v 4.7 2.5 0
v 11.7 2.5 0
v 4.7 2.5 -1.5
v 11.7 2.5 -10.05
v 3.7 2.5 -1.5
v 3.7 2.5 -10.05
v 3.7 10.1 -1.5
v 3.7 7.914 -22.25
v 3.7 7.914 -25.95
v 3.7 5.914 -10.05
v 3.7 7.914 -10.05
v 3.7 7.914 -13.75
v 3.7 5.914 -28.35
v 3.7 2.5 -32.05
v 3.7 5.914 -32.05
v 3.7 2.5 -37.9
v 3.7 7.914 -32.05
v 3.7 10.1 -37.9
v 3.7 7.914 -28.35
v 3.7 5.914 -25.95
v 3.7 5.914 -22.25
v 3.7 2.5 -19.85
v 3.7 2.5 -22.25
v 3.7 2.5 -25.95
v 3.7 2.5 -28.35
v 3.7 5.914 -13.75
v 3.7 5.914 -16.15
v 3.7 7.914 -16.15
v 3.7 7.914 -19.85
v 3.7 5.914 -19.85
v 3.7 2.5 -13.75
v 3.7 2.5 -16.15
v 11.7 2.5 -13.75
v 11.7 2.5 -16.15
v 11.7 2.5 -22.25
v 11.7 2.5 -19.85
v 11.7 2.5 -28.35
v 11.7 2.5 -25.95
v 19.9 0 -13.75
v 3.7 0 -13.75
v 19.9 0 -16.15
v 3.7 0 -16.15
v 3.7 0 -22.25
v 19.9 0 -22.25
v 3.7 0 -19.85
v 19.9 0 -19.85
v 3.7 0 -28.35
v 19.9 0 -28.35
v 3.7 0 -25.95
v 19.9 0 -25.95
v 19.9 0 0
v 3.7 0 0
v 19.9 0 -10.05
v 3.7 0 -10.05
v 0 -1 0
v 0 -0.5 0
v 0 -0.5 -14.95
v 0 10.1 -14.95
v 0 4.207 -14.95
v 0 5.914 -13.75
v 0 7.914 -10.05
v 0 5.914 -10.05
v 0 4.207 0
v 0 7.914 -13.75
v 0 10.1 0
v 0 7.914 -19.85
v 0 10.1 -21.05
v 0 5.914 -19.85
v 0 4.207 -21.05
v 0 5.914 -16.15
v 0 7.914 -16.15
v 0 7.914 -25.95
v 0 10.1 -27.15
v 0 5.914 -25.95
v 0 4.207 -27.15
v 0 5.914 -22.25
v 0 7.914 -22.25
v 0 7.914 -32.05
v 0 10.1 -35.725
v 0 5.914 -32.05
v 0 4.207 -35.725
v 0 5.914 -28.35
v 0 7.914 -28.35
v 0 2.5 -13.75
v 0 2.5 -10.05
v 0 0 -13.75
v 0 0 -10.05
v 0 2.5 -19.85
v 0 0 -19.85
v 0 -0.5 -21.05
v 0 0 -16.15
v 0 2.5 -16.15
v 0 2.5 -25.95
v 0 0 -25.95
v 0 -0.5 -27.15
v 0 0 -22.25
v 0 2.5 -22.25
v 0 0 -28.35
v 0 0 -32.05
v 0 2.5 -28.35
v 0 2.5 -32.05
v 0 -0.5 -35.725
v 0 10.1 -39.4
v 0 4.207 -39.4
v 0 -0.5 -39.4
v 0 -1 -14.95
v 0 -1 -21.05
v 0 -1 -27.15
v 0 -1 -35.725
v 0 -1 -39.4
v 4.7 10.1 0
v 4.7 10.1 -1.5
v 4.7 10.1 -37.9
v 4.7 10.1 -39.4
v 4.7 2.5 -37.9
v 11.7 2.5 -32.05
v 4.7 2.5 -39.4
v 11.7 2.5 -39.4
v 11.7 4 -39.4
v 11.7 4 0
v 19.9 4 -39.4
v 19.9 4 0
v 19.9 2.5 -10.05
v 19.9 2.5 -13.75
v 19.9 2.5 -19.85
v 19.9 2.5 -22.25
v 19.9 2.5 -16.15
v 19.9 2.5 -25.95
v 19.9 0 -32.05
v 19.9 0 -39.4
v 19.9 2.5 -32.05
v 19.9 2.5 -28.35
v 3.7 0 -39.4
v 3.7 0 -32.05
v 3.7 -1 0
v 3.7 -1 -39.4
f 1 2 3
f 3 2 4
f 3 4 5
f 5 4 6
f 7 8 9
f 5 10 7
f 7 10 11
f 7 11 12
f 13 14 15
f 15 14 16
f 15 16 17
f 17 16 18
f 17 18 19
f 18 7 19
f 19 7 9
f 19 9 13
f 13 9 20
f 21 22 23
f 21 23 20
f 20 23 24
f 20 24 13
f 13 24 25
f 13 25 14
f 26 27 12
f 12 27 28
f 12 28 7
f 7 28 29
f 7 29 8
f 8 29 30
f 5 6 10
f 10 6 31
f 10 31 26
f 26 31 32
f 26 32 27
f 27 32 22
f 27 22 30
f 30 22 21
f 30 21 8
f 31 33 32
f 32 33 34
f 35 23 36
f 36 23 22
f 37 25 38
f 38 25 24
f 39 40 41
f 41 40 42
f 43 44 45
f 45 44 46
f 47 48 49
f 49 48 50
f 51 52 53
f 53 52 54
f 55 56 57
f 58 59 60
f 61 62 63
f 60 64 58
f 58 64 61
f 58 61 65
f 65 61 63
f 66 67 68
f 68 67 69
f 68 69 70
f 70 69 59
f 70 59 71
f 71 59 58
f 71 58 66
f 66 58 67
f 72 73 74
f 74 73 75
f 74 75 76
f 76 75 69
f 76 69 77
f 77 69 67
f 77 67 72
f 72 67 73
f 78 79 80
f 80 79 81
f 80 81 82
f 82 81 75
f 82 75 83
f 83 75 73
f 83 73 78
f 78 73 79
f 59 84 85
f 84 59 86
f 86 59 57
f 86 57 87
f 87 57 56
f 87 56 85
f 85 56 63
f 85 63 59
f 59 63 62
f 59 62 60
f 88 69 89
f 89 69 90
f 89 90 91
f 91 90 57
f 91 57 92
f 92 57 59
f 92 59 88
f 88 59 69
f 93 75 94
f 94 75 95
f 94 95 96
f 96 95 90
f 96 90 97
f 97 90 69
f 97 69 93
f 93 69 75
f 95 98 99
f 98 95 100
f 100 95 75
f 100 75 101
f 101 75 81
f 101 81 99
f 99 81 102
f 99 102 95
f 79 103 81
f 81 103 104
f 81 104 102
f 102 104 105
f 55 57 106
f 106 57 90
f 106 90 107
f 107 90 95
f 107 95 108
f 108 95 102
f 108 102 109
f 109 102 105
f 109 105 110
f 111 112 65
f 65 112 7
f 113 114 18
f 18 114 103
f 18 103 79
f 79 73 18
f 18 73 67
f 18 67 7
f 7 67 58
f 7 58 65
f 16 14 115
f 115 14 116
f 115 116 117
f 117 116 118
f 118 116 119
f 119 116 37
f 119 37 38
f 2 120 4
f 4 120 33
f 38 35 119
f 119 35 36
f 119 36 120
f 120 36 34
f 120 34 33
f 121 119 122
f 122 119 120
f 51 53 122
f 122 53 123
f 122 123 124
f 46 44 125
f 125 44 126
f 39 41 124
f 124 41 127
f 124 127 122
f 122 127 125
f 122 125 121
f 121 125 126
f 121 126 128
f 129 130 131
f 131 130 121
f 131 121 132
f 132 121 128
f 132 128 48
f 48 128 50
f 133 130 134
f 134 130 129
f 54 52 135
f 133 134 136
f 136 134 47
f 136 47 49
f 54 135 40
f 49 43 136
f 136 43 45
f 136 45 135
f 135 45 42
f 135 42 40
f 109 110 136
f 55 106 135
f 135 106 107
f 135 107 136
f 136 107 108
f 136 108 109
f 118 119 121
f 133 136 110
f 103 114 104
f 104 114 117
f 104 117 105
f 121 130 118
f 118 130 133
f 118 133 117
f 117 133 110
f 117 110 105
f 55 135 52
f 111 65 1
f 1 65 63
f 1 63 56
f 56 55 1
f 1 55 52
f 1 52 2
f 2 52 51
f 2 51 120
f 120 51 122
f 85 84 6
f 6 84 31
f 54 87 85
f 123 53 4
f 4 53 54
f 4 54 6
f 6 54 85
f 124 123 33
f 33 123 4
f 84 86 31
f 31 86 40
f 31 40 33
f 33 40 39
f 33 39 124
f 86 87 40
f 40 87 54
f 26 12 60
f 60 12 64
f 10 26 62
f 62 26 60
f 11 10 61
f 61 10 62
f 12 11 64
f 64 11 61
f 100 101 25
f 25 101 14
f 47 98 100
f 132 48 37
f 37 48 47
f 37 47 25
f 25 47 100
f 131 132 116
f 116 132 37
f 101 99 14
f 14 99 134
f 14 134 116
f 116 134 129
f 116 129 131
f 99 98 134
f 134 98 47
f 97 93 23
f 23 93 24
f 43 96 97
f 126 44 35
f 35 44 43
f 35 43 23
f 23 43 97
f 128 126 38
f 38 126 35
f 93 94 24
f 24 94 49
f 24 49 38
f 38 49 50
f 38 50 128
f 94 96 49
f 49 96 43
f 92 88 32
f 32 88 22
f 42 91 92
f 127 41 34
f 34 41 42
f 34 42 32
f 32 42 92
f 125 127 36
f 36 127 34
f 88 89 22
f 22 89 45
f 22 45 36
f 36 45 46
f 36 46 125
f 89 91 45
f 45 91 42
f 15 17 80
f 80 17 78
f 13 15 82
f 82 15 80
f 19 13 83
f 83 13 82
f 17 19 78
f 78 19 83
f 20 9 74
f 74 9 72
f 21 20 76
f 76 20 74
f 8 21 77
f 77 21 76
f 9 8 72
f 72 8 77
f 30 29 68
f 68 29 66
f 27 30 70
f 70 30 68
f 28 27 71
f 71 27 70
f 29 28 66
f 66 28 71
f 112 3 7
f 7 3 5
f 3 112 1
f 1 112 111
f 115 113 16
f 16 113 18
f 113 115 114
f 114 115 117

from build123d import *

# Parameters (mm, degrees)
RESSALTO_EXTRUS_O1_DEPTH = 39.4
ESBO_O2_W                = 3.7
ESBO_O2_H                = 2.5
CORTE_EXTRUS_O1_DEPTH    = 46.281121894
ESBO_O3_W                = 3.7
ESBO_O3_H                = 2
CORTE_EXTRUS_O2_DEPTH    = 10
PADR_O_LINEAR1_COUNT     = 4
PADR_O_LINEAR1_PITCH     = 6.1
ESBO_O5_W                = 1.5
ESBO_O5_H                = 7.6
RESSALTO_EXTRUS_O2_DEPTH = 1


with BuildPart() as part:
    # Esboço1 → Ressalto-extrusão1 (new body)
    with BuildSketch(Plane.XY):
        Polygon((0, 0), (0, 10.1), (3.7, 10.1), (3.7, 2.5), (11.7, 2.5), (11.7, 4), (19.9, 4), (19.9, 0), (3.7, 0), (3.7, -1), (0, -1), align=None)
    extrude(amount=-RESSALTO_EXTRUS_O1_DEPTH)

    # Esboço2 → Corte-extrusão1 (cut, through all)
    with BuildSketch(Plane(origin=(19.9, 0, 0), x_dir=(0, 0, -1), z_dir=(1, 0, 0))):
        with Locations((11.9, 1.25)):
            Rectangle(ESBO_O2_W, ESBO_O2_H)
    corte_extrus_o1 = extrude(amount=-CORTE_EXTRUS_O1_DEPTH, mode=Mode.SUBTRACT)

    # Esboço3 → Corte-extrusão2 (cut)
    with BuildSketch(Plane(origin=(3.7, 0, 0), x_dir=(0, 0, -1), z_dir=(1, 0, 0))):
        with Locations((11.9, 6.914453418)):
            Rectangle(ESBO_O3_W, ESBO_O3_H)
    corte_extrus_o2 = extrude(amount=-CORTE_EXTRUS_O2_DEPTH, mode=Mode.SUBTRACT)

    # Padrão linear1: Corte-extrusão1, Corte-extrusão2 ×4
    with Locations(*[(0, 0, -i * PADR_O_LINEAR1_PITCH) for i in range(1, PADR_O_LINEAR1_COUNT)]):
        add(corte_extrus_o1, mode=Mode.SUBTRACT)
        add(corte_extrus_o2, mode=Mode.SUBTRACT)

    # Esboço5 → Ressalto-extrusão2 (add)
    with BuildSketch(Plane(origin=(3.7, 0, 0), x_dir=(0, 0, -1), z_dir=(1, 0, 0))):
        with Locations((0.75, 6.3)):
            Rectangle(ESBO_O5_W, ESBO_O5_H)
    ressalto_extrus_o2 = extrude(amount=RESSALTO_EXTRUS_O2_DEPTH)

    # Espelhar1: Ressalto-extrusão2 across plane
    add(ressalto_extrus_o2.mirror(Plane.XY.offset(-19.7)))


solid = part.part
